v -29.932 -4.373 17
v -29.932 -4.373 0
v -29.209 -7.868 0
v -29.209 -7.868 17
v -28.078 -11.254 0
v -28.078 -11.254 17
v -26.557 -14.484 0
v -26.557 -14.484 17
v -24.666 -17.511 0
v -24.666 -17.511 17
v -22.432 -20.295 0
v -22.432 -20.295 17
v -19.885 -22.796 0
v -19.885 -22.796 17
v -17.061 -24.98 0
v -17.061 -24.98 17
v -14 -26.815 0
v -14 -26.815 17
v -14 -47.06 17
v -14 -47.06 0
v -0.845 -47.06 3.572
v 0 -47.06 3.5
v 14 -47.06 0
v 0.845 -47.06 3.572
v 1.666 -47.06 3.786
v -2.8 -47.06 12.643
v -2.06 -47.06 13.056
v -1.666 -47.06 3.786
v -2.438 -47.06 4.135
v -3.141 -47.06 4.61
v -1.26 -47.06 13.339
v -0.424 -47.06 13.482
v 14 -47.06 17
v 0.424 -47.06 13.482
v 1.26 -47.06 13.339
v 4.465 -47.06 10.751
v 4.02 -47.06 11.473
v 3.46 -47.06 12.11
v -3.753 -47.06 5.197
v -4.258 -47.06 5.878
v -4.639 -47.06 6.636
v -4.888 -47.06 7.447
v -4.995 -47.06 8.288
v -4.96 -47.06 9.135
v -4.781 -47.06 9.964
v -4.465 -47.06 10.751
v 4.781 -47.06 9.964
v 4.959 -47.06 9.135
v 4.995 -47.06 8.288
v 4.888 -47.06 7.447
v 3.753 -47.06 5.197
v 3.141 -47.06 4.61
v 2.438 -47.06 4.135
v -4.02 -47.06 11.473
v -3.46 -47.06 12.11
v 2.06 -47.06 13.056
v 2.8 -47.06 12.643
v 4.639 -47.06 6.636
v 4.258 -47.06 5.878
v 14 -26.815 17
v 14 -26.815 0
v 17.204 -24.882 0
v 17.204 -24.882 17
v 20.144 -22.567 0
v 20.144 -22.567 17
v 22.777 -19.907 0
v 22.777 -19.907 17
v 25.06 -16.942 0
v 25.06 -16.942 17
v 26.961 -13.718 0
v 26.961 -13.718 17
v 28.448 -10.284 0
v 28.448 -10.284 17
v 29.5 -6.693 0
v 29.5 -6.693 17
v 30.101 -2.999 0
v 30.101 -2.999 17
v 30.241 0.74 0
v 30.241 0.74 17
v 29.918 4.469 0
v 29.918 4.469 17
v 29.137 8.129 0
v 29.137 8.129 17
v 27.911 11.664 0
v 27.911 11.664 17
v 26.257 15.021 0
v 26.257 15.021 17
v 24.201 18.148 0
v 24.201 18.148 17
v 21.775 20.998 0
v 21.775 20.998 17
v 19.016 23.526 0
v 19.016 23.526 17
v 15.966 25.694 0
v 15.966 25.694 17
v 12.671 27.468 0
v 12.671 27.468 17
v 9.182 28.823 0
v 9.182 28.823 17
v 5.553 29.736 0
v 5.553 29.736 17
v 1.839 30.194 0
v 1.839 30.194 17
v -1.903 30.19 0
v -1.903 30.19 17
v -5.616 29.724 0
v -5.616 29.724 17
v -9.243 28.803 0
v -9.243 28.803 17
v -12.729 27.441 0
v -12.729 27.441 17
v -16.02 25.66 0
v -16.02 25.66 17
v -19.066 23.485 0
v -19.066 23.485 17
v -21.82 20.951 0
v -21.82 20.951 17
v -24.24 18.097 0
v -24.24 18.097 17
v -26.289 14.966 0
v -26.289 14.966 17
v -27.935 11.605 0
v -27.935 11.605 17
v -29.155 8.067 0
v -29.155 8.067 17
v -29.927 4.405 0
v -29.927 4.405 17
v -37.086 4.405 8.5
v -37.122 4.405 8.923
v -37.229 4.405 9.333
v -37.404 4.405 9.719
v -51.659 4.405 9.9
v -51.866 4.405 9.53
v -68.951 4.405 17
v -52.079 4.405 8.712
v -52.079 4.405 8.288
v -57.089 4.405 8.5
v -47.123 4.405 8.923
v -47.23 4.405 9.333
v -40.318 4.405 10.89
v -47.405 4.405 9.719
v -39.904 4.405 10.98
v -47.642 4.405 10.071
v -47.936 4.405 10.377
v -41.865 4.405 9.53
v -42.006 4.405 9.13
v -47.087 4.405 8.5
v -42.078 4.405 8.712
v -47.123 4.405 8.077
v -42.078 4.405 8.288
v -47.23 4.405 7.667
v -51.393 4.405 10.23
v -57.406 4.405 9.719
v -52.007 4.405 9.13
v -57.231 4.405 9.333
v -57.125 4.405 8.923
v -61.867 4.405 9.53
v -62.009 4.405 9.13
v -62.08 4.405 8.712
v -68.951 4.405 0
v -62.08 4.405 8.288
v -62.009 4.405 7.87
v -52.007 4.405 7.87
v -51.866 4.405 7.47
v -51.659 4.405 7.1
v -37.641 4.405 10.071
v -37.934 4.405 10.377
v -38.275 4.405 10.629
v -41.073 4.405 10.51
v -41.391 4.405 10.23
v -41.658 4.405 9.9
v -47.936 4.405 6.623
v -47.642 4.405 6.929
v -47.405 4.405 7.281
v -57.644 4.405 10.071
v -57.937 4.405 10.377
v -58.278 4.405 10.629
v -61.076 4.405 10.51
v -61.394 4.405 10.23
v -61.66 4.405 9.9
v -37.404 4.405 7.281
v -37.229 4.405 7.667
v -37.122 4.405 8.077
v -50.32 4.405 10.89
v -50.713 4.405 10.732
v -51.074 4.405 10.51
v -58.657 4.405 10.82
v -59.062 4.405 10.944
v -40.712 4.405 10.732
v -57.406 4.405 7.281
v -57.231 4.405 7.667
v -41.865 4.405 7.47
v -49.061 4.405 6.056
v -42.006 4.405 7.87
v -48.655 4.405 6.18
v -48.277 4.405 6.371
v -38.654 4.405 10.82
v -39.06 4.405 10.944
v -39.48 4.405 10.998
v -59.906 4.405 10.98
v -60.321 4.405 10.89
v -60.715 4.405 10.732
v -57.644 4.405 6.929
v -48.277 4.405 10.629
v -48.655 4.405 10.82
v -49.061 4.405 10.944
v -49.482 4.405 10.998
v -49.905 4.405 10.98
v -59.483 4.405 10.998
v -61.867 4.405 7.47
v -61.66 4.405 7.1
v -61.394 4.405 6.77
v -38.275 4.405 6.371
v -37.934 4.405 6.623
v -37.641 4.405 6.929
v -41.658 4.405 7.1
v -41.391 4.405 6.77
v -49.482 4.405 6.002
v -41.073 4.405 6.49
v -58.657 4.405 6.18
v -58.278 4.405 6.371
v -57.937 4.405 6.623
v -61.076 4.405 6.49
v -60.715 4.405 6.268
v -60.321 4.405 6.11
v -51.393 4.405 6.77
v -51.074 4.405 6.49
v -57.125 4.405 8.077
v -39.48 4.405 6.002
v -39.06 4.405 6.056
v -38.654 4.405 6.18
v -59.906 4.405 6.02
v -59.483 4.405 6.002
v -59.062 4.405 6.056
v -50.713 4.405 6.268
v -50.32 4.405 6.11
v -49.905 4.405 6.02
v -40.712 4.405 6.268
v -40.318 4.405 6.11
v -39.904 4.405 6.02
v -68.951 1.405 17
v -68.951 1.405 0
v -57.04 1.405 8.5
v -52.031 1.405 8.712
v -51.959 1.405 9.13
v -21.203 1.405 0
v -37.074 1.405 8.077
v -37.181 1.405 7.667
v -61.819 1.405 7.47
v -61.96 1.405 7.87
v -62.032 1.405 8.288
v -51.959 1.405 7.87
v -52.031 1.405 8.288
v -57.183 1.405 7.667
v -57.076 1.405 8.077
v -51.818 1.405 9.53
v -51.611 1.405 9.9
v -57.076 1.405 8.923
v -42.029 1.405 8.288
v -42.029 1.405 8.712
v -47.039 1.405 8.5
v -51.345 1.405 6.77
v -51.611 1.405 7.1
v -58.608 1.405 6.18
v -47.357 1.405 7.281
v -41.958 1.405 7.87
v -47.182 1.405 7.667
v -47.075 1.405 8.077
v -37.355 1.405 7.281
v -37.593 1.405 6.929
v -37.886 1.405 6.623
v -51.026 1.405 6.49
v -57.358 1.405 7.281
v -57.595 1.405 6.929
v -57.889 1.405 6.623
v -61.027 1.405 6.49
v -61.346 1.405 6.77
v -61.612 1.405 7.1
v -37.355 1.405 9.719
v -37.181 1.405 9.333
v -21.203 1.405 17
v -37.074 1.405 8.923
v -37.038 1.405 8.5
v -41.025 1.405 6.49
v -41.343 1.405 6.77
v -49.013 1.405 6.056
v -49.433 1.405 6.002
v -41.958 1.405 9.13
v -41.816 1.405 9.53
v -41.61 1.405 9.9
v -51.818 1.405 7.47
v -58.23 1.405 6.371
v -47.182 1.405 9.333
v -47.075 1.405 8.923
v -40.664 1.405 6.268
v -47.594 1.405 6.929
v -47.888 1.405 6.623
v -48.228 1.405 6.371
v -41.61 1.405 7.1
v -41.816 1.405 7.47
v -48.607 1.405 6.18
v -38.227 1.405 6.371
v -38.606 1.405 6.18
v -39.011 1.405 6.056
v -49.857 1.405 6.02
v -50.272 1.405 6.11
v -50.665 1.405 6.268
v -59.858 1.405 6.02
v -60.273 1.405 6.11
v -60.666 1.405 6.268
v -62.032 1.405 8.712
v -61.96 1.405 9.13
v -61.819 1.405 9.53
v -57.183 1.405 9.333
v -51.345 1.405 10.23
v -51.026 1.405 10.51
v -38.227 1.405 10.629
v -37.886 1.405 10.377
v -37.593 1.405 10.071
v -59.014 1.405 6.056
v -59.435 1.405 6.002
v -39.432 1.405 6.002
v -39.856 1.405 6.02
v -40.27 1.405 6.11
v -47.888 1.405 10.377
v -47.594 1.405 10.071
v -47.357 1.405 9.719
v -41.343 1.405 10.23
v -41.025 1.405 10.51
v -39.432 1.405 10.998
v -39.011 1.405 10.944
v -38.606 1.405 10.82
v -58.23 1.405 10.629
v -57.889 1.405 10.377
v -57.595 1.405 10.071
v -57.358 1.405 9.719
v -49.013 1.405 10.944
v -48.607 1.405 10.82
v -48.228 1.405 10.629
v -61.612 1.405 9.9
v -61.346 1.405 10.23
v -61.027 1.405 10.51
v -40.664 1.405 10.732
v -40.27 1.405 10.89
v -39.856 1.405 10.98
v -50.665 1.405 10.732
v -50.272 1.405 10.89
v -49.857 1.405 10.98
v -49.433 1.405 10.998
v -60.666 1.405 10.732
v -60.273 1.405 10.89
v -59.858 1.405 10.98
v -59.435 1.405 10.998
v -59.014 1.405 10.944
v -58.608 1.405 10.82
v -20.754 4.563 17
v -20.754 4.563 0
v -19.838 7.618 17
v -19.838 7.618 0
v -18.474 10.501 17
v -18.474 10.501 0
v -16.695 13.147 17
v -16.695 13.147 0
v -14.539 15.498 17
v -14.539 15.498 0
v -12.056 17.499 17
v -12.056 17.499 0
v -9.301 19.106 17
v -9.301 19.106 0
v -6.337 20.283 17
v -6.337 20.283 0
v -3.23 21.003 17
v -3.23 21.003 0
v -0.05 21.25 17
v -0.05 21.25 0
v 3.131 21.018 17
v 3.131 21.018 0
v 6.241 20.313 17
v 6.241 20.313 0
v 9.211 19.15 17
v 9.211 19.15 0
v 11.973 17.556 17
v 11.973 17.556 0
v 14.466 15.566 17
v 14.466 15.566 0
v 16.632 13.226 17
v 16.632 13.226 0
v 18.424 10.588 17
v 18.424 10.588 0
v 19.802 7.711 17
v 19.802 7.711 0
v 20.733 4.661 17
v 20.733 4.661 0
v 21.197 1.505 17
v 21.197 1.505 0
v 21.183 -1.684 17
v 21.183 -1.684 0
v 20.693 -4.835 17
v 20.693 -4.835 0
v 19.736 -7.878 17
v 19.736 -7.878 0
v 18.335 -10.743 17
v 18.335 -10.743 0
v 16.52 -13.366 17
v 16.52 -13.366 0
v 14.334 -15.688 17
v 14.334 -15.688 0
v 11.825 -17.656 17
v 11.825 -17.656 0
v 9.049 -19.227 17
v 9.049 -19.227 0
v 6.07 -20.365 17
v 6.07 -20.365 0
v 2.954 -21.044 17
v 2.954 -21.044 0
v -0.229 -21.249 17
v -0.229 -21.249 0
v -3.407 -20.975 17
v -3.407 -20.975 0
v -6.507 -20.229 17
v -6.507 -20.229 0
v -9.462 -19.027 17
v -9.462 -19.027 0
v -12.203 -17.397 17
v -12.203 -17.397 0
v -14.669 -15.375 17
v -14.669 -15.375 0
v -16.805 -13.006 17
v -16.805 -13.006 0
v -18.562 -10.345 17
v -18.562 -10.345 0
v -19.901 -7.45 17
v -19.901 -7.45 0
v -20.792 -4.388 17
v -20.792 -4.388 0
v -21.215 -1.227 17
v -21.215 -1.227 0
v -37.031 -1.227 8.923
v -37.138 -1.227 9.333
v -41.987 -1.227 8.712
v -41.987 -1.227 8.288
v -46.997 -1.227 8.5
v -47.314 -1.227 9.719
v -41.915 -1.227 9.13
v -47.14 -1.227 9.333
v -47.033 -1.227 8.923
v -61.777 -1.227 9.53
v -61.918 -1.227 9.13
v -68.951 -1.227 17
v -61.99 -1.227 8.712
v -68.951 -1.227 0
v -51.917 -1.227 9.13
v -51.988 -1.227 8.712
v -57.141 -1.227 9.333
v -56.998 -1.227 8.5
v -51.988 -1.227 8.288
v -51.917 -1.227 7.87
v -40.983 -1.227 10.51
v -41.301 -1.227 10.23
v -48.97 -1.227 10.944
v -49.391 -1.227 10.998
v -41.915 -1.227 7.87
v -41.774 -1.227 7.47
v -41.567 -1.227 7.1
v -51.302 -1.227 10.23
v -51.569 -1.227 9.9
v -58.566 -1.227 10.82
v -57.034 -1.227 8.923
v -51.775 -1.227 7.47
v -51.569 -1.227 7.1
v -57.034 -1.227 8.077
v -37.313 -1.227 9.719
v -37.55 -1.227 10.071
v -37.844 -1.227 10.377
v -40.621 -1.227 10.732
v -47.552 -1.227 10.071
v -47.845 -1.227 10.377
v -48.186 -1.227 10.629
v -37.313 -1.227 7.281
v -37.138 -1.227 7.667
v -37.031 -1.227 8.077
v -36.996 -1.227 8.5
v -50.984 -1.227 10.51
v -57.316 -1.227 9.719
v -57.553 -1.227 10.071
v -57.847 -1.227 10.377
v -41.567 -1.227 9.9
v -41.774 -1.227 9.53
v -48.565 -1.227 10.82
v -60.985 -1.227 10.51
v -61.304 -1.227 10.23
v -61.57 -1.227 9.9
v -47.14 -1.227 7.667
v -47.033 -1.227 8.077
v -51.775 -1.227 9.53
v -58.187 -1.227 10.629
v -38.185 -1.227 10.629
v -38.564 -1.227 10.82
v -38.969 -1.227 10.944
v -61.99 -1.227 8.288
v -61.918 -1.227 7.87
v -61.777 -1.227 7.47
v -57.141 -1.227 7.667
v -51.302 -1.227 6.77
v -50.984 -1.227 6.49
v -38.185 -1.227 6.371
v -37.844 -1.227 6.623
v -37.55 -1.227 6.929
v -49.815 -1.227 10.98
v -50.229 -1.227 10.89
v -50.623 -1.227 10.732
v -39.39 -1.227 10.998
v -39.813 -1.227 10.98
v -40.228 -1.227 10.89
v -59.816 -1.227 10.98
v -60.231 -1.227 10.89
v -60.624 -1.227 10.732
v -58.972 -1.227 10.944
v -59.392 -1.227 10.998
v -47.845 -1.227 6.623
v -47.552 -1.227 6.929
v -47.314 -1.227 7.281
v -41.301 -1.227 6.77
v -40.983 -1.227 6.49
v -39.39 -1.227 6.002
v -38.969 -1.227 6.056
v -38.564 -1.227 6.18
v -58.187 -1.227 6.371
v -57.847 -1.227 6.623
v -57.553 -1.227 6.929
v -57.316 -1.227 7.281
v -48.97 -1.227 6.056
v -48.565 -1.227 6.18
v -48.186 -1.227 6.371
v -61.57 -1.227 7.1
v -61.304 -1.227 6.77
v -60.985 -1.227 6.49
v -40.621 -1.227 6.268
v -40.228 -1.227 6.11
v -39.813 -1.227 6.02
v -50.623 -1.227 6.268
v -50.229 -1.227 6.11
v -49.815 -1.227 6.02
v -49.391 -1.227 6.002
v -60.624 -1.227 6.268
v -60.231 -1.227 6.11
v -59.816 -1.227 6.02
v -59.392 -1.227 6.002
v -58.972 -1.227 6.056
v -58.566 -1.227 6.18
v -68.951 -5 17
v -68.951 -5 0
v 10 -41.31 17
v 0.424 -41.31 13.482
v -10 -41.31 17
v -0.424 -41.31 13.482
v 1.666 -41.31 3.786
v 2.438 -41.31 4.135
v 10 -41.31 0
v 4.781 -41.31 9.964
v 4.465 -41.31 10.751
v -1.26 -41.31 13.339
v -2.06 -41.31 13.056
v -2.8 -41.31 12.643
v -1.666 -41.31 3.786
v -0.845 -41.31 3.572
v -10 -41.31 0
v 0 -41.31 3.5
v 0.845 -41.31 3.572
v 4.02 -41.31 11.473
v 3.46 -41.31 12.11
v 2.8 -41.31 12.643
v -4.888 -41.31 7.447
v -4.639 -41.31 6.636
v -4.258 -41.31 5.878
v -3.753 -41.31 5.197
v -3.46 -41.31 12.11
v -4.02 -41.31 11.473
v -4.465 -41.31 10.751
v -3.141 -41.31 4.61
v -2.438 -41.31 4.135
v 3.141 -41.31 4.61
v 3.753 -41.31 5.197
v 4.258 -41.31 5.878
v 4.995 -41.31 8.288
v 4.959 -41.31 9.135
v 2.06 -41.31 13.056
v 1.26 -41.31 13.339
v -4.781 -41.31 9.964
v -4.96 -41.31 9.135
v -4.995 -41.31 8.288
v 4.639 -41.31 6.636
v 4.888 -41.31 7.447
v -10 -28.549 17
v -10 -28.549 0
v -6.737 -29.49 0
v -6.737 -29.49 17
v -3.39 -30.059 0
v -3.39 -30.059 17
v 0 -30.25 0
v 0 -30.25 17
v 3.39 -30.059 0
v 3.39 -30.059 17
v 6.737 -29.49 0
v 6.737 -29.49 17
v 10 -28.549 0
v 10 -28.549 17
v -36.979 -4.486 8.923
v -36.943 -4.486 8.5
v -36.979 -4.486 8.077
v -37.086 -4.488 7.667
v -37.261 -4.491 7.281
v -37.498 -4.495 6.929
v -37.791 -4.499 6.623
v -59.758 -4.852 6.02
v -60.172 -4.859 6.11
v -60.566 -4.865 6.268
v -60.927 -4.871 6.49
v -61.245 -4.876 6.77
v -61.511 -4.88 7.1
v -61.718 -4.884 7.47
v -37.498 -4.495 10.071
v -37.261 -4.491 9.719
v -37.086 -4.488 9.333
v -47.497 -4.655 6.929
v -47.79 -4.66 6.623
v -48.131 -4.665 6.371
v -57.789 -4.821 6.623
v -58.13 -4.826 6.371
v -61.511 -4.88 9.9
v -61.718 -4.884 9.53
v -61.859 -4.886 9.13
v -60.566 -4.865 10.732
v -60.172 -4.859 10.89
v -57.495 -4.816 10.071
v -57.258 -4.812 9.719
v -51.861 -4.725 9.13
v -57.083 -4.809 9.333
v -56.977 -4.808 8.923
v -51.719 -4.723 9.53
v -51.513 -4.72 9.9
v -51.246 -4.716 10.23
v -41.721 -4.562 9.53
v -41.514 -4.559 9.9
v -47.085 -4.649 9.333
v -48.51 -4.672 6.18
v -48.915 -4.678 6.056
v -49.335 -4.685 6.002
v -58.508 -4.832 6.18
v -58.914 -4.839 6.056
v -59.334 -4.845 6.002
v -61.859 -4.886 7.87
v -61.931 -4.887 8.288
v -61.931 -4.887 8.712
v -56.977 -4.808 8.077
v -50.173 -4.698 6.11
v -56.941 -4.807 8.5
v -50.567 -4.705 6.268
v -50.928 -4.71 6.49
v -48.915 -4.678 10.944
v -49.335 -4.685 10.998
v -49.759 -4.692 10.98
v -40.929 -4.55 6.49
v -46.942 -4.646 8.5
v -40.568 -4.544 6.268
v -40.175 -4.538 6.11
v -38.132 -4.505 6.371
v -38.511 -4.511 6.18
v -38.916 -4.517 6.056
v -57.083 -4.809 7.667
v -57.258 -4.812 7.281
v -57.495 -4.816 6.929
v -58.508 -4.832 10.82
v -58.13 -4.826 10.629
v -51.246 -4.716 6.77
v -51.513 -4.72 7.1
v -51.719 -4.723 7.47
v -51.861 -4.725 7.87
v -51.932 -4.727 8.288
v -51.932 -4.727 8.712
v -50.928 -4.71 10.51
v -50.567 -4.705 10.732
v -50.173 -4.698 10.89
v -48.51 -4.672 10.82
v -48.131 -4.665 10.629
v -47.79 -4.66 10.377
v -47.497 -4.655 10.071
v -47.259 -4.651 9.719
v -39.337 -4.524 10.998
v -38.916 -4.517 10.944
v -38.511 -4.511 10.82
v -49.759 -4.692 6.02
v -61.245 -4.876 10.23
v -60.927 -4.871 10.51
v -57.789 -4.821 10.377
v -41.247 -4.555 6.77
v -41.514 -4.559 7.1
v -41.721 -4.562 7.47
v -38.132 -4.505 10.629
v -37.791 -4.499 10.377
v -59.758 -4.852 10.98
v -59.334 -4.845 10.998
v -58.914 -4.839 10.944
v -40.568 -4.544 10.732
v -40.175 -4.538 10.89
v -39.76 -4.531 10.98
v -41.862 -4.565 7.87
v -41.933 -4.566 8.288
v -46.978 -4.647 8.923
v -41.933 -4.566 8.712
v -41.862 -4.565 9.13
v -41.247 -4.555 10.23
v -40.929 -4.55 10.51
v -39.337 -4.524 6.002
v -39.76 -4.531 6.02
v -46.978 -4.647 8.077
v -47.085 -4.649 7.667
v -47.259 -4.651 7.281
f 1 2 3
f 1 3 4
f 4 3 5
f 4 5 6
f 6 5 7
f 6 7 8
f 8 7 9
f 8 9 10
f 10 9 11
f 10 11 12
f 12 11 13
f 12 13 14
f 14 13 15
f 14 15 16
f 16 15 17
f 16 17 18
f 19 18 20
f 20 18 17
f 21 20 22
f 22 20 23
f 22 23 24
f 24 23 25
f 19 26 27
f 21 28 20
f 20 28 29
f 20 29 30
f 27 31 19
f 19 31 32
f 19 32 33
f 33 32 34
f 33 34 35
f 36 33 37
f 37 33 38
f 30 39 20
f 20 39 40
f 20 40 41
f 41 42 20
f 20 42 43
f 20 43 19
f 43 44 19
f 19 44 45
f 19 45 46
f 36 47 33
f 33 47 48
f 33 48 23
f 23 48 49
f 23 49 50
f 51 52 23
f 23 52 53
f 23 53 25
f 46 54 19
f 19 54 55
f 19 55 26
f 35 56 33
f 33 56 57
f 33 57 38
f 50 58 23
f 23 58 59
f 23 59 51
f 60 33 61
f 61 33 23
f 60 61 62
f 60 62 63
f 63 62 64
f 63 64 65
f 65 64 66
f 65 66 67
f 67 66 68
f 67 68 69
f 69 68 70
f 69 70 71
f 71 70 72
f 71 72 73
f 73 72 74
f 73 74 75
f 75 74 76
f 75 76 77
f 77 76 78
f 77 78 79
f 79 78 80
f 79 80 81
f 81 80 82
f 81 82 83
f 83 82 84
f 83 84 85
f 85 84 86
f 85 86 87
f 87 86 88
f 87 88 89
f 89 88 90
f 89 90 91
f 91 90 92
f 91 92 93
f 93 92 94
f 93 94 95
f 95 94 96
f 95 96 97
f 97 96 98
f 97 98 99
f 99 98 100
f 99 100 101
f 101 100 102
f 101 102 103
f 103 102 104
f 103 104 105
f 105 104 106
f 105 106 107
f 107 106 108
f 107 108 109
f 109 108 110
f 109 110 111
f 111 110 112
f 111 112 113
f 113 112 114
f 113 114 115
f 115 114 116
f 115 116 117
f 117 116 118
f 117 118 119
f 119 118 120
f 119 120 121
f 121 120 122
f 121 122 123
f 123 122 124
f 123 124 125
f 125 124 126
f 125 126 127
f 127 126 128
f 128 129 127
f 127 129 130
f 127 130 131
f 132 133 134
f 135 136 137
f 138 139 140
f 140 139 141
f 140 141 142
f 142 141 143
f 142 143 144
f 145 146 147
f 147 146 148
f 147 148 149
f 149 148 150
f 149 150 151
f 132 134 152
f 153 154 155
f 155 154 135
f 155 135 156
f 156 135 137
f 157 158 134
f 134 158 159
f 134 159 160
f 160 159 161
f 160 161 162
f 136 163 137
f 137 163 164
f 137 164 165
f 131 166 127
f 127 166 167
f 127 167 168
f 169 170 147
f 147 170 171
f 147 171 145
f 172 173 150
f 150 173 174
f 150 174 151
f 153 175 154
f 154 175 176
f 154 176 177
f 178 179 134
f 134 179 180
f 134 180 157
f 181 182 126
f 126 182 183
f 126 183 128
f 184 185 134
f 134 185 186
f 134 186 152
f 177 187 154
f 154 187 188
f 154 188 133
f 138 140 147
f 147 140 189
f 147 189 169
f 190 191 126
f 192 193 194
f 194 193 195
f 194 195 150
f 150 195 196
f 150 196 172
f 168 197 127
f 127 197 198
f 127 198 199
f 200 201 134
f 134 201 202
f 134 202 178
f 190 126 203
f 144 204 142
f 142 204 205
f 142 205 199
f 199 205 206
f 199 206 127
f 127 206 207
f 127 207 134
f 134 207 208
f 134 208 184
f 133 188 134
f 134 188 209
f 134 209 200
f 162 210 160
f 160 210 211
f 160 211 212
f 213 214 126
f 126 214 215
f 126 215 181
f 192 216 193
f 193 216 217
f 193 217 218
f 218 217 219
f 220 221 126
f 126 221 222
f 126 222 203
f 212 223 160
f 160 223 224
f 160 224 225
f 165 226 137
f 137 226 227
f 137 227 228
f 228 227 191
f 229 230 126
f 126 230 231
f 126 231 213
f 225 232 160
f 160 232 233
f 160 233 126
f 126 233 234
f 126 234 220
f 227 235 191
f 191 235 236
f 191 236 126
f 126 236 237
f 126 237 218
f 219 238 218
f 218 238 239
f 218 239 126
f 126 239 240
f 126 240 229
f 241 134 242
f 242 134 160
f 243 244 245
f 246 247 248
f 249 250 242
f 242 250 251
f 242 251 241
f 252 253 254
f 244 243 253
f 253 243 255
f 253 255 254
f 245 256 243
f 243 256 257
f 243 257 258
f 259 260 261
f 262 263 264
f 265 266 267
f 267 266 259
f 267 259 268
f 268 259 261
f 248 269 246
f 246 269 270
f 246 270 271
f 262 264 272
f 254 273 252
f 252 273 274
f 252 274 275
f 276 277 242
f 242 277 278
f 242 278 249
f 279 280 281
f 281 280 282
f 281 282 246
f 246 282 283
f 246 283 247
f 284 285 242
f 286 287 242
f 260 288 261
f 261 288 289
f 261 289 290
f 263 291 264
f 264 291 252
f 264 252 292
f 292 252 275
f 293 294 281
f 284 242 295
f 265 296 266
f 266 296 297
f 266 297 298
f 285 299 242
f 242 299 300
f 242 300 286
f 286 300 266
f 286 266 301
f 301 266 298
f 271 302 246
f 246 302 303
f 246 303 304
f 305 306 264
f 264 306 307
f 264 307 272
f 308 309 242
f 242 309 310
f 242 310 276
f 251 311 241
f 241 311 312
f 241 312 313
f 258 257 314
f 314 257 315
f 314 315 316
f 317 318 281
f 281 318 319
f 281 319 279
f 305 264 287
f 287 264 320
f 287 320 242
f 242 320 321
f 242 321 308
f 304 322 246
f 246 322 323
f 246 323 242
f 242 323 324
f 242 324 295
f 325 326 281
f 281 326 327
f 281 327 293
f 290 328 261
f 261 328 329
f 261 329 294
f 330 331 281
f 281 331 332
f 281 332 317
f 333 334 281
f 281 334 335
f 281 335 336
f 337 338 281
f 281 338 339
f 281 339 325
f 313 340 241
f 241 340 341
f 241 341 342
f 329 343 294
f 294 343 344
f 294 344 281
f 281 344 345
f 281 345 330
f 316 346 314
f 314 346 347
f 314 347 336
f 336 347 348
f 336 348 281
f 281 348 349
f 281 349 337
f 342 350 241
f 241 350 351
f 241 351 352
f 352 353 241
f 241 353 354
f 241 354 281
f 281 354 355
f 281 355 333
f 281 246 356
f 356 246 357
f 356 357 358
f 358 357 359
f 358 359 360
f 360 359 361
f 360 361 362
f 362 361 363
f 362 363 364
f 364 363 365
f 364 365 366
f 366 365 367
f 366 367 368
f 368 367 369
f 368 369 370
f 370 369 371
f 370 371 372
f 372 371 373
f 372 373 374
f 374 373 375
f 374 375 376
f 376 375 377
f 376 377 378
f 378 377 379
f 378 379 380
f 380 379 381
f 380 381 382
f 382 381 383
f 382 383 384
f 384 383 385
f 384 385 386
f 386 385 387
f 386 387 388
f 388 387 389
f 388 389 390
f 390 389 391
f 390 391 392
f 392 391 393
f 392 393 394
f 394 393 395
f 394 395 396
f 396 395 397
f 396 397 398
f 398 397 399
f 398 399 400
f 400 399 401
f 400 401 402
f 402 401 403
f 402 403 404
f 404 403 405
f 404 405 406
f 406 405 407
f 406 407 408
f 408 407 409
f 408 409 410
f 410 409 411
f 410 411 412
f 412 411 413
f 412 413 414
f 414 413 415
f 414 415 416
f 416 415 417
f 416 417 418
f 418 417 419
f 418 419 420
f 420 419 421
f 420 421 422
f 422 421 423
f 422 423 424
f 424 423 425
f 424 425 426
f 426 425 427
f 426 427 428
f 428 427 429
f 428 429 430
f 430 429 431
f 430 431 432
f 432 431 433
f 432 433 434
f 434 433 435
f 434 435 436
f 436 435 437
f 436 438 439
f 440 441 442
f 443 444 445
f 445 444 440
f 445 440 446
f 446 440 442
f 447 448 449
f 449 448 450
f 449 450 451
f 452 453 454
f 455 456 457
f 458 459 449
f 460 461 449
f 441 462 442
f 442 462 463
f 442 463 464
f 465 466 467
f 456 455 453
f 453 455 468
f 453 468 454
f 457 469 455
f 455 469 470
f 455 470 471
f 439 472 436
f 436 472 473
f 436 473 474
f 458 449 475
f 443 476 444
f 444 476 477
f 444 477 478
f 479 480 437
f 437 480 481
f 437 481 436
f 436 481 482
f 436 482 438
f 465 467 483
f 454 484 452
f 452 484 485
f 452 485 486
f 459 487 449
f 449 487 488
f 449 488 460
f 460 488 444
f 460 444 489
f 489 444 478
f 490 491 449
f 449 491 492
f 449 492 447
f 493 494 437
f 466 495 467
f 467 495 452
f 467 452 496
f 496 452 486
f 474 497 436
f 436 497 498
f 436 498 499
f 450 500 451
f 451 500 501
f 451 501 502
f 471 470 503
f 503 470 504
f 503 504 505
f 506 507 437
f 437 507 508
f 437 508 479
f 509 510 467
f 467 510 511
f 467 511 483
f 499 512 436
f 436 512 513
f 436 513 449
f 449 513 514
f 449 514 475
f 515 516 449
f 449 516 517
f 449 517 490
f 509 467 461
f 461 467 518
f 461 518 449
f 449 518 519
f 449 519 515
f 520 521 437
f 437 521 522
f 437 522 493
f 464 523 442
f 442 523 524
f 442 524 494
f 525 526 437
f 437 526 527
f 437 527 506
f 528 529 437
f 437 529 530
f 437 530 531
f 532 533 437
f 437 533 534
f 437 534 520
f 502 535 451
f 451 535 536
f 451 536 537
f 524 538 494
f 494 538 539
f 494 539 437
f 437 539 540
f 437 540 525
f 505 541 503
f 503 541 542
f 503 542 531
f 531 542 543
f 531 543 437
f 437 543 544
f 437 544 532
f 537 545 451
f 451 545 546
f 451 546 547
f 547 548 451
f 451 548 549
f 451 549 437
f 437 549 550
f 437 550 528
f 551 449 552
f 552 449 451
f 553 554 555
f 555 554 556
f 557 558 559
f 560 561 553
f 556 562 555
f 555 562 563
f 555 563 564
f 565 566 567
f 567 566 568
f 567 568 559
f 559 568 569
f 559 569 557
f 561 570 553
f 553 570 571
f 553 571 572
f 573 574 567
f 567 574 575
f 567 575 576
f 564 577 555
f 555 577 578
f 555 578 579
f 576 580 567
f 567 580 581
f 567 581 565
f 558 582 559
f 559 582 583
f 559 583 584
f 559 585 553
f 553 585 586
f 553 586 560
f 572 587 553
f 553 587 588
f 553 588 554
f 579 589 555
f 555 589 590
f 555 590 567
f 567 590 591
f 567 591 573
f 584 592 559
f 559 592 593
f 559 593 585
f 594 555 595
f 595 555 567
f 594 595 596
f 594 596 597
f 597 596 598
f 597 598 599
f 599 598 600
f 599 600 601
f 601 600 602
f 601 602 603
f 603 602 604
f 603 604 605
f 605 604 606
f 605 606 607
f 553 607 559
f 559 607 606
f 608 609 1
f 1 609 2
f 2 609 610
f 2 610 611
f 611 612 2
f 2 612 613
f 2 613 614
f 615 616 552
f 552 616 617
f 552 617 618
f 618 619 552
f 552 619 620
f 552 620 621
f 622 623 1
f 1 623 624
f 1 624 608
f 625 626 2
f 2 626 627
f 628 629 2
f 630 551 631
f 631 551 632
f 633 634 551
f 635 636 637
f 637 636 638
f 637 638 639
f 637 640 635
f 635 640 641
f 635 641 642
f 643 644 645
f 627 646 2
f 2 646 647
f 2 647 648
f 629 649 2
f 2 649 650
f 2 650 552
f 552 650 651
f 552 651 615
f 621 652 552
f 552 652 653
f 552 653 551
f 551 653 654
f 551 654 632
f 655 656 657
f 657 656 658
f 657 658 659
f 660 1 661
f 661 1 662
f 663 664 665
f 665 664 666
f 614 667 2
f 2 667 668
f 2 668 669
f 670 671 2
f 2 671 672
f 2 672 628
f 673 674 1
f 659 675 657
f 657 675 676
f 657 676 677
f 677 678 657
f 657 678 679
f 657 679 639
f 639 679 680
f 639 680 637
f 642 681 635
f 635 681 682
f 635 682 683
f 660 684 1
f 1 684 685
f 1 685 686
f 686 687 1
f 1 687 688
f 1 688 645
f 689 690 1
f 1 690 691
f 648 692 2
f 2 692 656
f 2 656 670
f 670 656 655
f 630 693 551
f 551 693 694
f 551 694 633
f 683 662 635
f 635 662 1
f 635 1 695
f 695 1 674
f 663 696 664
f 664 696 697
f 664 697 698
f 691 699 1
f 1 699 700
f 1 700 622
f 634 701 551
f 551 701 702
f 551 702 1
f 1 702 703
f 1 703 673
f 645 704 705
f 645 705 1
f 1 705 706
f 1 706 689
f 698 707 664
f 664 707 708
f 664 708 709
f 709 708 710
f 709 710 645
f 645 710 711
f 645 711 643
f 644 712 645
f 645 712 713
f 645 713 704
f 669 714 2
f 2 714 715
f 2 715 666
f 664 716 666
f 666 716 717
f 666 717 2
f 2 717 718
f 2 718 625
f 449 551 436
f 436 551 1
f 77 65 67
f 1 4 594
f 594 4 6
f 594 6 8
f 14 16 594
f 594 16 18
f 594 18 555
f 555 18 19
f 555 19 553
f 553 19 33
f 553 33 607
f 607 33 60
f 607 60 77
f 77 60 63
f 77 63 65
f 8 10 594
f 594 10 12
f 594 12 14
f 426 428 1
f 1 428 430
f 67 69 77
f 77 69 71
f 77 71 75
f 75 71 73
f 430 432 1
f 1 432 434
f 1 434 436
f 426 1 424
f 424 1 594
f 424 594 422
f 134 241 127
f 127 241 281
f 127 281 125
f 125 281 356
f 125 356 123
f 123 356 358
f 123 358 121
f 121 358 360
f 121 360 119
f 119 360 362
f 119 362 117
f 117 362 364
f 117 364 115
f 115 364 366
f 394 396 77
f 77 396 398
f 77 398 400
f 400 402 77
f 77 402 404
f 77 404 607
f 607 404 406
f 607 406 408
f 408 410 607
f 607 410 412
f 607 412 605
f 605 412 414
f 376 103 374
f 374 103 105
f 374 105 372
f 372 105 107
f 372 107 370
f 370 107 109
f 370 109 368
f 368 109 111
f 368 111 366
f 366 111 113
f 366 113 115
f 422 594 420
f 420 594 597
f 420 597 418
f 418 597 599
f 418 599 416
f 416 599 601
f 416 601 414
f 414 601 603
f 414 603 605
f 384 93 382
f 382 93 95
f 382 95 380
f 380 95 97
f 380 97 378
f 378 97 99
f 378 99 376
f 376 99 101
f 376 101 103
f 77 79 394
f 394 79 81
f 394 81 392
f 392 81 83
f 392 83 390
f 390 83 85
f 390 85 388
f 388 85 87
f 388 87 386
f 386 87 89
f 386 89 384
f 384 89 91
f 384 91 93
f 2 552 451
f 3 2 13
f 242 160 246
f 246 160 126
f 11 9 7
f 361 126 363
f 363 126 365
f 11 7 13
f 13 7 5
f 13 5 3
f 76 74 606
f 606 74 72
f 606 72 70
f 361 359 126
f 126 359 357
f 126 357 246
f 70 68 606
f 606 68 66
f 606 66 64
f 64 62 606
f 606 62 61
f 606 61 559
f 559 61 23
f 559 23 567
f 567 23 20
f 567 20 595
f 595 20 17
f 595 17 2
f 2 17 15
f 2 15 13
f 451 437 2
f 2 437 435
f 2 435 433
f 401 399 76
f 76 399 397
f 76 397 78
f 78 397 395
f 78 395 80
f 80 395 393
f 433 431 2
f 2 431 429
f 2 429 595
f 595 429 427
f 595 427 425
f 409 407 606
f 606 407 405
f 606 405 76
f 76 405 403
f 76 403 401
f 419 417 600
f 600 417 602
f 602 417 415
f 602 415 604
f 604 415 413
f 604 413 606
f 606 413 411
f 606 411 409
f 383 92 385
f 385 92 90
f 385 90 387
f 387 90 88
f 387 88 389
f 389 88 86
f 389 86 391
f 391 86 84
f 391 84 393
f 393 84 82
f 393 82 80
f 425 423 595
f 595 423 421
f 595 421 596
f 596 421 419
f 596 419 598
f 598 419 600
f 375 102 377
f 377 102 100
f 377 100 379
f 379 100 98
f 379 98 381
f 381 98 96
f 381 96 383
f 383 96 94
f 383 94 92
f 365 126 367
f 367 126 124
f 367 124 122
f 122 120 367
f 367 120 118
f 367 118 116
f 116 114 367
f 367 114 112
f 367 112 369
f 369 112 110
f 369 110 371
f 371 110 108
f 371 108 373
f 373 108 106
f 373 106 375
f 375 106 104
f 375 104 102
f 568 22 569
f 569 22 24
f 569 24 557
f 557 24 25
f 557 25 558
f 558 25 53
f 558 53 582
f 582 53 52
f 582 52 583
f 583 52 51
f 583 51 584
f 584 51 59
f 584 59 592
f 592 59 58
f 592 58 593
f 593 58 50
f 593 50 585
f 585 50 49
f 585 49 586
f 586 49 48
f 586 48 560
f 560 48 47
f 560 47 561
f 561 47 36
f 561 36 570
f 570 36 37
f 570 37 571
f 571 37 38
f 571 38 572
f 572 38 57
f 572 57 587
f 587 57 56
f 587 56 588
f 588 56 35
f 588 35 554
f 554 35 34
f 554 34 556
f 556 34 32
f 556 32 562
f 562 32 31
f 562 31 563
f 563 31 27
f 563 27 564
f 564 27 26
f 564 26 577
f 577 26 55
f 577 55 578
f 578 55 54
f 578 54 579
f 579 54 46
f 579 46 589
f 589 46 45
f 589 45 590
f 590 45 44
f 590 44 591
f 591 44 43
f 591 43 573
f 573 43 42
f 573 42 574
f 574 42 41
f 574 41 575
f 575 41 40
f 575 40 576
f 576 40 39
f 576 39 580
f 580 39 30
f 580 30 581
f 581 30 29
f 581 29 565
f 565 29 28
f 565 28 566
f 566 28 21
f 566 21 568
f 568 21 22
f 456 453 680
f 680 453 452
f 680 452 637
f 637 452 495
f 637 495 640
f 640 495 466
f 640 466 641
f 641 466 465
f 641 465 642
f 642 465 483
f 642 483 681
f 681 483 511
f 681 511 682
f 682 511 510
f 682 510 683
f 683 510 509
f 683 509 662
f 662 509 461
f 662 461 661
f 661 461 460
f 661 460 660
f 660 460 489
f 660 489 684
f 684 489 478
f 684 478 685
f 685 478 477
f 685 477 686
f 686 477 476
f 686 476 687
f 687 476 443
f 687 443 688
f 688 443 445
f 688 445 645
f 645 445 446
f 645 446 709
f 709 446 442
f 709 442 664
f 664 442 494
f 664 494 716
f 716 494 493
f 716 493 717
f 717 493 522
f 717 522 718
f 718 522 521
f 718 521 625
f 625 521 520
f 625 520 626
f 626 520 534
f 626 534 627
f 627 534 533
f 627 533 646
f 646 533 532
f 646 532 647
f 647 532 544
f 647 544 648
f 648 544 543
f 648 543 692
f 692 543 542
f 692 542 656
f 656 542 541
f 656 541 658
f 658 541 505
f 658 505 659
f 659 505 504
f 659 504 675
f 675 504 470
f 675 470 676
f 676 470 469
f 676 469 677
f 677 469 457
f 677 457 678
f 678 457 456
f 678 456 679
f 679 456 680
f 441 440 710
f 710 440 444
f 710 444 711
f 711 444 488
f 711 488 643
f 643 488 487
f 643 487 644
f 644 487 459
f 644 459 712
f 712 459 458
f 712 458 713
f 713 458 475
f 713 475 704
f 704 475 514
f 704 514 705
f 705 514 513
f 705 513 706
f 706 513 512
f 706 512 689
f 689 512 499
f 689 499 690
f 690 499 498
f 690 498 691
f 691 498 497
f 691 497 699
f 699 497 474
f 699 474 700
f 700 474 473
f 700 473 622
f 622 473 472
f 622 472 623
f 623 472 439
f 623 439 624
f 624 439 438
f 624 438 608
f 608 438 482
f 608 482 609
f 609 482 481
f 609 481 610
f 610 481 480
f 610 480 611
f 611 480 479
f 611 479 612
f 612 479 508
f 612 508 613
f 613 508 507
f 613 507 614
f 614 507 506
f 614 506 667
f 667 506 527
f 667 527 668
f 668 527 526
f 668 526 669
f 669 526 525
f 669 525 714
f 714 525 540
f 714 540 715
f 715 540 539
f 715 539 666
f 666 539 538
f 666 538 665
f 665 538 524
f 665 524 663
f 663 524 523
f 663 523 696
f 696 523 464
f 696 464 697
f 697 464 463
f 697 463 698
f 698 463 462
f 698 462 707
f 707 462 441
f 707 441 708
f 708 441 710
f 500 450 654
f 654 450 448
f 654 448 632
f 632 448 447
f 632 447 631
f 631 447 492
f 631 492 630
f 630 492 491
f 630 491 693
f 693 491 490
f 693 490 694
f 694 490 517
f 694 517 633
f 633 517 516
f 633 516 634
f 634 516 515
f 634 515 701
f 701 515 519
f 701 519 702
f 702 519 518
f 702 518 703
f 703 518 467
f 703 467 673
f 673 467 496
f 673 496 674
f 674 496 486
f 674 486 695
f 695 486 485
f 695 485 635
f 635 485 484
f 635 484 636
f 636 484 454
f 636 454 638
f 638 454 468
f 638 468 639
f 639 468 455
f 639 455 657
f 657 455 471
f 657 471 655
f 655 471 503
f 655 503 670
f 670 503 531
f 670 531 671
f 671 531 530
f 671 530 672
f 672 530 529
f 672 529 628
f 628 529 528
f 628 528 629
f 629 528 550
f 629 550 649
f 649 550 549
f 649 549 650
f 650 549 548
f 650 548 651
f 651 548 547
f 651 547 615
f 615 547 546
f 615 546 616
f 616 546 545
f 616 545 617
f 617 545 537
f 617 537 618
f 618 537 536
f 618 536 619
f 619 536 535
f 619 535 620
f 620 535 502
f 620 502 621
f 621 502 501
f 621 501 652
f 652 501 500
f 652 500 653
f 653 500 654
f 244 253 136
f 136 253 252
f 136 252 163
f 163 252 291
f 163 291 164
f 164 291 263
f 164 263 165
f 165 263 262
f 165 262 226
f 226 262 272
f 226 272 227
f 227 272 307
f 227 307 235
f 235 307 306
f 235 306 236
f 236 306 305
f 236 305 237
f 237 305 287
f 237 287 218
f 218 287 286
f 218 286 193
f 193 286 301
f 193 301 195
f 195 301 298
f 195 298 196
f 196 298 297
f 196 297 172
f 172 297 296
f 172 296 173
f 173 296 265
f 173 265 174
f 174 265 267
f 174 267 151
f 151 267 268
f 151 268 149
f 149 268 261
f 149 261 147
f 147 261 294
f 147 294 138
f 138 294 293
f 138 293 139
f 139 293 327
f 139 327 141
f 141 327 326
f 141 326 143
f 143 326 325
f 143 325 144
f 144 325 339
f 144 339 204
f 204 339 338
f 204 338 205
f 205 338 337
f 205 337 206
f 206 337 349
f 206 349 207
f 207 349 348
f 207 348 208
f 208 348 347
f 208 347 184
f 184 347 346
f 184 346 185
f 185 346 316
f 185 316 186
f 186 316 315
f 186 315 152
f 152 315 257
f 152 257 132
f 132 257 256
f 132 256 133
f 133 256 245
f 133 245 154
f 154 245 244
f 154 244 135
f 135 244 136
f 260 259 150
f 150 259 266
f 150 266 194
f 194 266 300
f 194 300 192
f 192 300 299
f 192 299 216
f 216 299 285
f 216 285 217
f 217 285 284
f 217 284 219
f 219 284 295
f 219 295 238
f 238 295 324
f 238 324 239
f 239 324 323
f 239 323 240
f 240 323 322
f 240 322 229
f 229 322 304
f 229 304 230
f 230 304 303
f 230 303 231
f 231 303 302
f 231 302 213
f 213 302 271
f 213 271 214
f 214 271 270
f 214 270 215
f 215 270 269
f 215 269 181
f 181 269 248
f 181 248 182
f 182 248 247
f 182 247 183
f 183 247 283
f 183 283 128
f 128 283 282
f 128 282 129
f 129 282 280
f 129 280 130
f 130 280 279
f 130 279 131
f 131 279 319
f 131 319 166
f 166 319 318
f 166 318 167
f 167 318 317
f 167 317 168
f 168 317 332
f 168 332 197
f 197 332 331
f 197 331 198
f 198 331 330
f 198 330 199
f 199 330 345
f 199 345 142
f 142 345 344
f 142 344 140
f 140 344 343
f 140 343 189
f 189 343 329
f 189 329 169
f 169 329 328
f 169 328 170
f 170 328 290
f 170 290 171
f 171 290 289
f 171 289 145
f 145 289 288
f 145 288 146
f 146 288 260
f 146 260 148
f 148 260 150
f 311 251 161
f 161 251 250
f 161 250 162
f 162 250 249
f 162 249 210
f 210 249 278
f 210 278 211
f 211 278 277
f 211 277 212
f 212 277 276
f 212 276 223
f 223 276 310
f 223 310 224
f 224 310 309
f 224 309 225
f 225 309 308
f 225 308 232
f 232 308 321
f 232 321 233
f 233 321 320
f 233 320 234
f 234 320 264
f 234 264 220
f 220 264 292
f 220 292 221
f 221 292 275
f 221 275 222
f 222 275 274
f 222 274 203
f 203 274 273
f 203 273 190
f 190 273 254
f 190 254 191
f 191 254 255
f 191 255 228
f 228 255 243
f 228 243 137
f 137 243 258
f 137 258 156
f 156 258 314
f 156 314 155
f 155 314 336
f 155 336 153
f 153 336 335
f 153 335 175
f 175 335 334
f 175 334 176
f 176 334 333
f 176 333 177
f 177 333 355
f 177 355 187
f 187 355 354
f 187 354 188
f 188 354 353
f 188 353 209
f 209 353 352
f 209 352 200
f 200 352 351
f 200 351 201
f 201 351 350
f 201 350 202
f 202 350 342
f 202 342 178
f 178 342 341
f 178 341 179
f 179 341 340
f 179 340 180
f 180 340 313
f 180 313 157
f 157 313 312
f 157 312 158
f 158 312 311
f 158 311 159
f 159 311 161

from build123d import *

# Parameters (mm, degrees)
SKETCH1_W           = 20
SKETCH1_H           = 5.75
BOSS_EXTRUDE1_DEPTH = 17
SKETCH2_R           = 5
CUT_EXTRUDE2_DEPTH  = 7
SKETCH4_R           = 2.5
CUT_EXTRUDE3_DEPTH  = 17


with BuildPart() as part:
    # Sketch1 → Boss-Extrude1 (new body)
    with BuildSketch(Plane.XY):
        with BuildLine():
            ThreePointArc((-30.225116888, -1.226706604), (-30.119790355, -2.803699153), (-29.932240793, -4.373037976))
            Line((-29.932240793, -4.373037976), (-20.825403989, -4.226706604))
            ThreePointArc((-20.825403989, -4.226706604), (-21.073436119, -2.733640452), (-21.21456318, -1.226706604))
            Line((-21.21456318, -1.226706604), (-30.225116888, -1.226706604))
        make_face()
        with BuildLine():
            Line((-68.950810556, -1.226706604), (-68.950810556, -5))
            Line((-68.950810556, -5), (-29.932240793, -4.373037976))
            ThreePointArc((-29.932240793, -4.373037976), (-30.119790355, -2.803699153), (-30.225116888, -1.226706604))
            Line((-30.225116888, -1.226706604), (-68.950810556, -1.226706604))
        make_face()
        with BuildLine():
            Line((-68.950810556, 4.405365931), (-68.950810556, 1.405365931))
            Line((-68.950810556, 1.405365931), (-30.217336855, 1.405365931))
            ThreePointArc((-30.217336855, 1.405365931), (-30.109804839, 2.908977923), (-29.927499912, 4.405365931))
            Line((-29.927499912, 4.405365931), (-68.950810556, 4.405365931))
        make_face()
        with BuildLine():
            ThreePointArc((-29.927499912, 4.405365931), (-30.109804839, 2.908977923), (-30.217336855, 1.405365931))
            Line((-30.217336855, 1.405365931), (-21.203477229, 1.405365931))
            ThreePointArc((-21.203477229, 1.405365931), (-21.049424337, 2.91277103), (-20.788344114, 4.405365931))
            Line((-20.788344114, 4.405365931), (-29.927499912, 4.405365931))
        make_face()
        with BuildLine():
            ThreePointArc((21.25, 0), (15.0260191, -15.0260191), (0, -21.25))
            Line((0, -21.25), (10, -21.25))
            Line((10, -21.25), (14, -21.25))
            Line((14, -21.25), (14, -26.815340759))
            ThreePointArc((14, -26.815340759), (25.870470618, -15.677412095), (30.25, 0))
            ThreePointArc((30.25, 0), (2.20857733, 30.169267246), (-29.927499912, 4.405365931))
            Line((-29.927499912, 4.405365931), (-20.788344114, 4.405365931))
            ThreePointArc((-20.788344114, 4.405365931), (2.214744632, 21.134270894), (21.25, 0))
        make_face()
        with BuildLine():
            Line((-20.825403989, -4.226706604), (-29.932240793, -4.373037976))
            ThreePointArc((-29.932240793, -4.373037976), (-24.66626611, -17.511076957), (-14, -26.815340759))
            Line((-14, -26.815340759), (-14, -21.25))
            Line((-14, -21.25), (-10, -21.25))
            Line((-10, -21.25), (0, -21.25))
            ThreePointArc((0, -21.25), (-13.448884427, -16.452659592), (-20.825403989, -4.226706604))
        make_face()
        with BuildLine():
            Line((-14, -21.25), (-14, -26.815340759))
            ThreePointArc((-14, -26.815340759), (-12.03127812, -27.754474356), (-10, -28.549299466))
            Line((-10, -28.549299466), (-10, -21.25))
            Line((-10, -21.25), (-14, -21.25))
        make_face()
        with BuildLine():
            Line((10, -21.25), (0, -21.25))
            Line((0, -21.25), (-10, -21.25))
            Line((-10, -21.25), (-10, -28.549299466))
            ThreePointArc((-10, -28.549299466), (0, -30.25), (10, -28.549299466))
            Line((10, -28.549299466), (10, -21.25))
        make_face()
        with BuildLine():
            Line((14, -21.25), (10, -21.25))
            Line((10, -21.25), (10, -28.549299466))
            ThreePointArc((10, -28.549299466), (12.03127812, -27.754474356), (14, -26.815340759))
            Line((14, -26.815340759), (14, -21.25))
        make_face()
        with BuildLine():
            ThreePointArc((14, -26.815340759), (12.03127812, -27.754474356), (10, -28.549299466))
            Line((10, -28.549299466), (10, -41.310288198))
            Line((10, -41.310288198), (10, -47.060288198))
            Line((10, -47.060288198), (14, -47.060288198))
            Line((14, -47.060288198), (14, -26.815340759))
        make_face()
        with BuildLine():
            ThreePointArc((-10, -28.549299466), (-12.03127812, -27.754474356), (-14, -26.815340759))
            Line((-14, -26.815340759), (-14, -47.060288198))
            Line((-14, -47.060288198), (-10, -47.060288198))
            Line((-10, -47.060288198), (-10, -41.310288198))
            Line((-10, -41.310288198), (-10, -28.549299466))
        make_face()
        with Locations((0, -44.185288198)):
            Rectangle(SKETCH1_W, SKETCH1_H)
    extrude(amount=BOSS_EXTRUDE1_DEPTH)

    # Sketch2 → Cut-Extrude2 (cut)
    with BuildSketch(Plane.XZ.offset(47.060288198)):
        with Locations((0, 8.5)):
            Circle(SKETCH2_R)
    extrude(amount=-CUT_EXTRUDE2_DEPTH, mode=Mode.SUBTRACT)

    # Sketch4 → Cut-Extrude3 (cut)
    with BuildSketch(Plane(origin=(0.062522925, -3.89107316, 0), x_dir=(0.99987093, 0.016066225, 0), z_dir=(0.016066225, -0.99987093, 0))):
        with Locations((-49.510438917, 8.5)):
            Circle(SKETCH4_R)
        with Locations((-39.510438917, 8.5)):
            Circle(SKETCH4_R)
        with Locations((-59.510438917, 8.5)):
            Circle(SKETCH4_R)
    extrude(amount=-CUT_EXTRUDE3_DEPTH, mode=Mode.SUBTRACT)


solid = part.part
